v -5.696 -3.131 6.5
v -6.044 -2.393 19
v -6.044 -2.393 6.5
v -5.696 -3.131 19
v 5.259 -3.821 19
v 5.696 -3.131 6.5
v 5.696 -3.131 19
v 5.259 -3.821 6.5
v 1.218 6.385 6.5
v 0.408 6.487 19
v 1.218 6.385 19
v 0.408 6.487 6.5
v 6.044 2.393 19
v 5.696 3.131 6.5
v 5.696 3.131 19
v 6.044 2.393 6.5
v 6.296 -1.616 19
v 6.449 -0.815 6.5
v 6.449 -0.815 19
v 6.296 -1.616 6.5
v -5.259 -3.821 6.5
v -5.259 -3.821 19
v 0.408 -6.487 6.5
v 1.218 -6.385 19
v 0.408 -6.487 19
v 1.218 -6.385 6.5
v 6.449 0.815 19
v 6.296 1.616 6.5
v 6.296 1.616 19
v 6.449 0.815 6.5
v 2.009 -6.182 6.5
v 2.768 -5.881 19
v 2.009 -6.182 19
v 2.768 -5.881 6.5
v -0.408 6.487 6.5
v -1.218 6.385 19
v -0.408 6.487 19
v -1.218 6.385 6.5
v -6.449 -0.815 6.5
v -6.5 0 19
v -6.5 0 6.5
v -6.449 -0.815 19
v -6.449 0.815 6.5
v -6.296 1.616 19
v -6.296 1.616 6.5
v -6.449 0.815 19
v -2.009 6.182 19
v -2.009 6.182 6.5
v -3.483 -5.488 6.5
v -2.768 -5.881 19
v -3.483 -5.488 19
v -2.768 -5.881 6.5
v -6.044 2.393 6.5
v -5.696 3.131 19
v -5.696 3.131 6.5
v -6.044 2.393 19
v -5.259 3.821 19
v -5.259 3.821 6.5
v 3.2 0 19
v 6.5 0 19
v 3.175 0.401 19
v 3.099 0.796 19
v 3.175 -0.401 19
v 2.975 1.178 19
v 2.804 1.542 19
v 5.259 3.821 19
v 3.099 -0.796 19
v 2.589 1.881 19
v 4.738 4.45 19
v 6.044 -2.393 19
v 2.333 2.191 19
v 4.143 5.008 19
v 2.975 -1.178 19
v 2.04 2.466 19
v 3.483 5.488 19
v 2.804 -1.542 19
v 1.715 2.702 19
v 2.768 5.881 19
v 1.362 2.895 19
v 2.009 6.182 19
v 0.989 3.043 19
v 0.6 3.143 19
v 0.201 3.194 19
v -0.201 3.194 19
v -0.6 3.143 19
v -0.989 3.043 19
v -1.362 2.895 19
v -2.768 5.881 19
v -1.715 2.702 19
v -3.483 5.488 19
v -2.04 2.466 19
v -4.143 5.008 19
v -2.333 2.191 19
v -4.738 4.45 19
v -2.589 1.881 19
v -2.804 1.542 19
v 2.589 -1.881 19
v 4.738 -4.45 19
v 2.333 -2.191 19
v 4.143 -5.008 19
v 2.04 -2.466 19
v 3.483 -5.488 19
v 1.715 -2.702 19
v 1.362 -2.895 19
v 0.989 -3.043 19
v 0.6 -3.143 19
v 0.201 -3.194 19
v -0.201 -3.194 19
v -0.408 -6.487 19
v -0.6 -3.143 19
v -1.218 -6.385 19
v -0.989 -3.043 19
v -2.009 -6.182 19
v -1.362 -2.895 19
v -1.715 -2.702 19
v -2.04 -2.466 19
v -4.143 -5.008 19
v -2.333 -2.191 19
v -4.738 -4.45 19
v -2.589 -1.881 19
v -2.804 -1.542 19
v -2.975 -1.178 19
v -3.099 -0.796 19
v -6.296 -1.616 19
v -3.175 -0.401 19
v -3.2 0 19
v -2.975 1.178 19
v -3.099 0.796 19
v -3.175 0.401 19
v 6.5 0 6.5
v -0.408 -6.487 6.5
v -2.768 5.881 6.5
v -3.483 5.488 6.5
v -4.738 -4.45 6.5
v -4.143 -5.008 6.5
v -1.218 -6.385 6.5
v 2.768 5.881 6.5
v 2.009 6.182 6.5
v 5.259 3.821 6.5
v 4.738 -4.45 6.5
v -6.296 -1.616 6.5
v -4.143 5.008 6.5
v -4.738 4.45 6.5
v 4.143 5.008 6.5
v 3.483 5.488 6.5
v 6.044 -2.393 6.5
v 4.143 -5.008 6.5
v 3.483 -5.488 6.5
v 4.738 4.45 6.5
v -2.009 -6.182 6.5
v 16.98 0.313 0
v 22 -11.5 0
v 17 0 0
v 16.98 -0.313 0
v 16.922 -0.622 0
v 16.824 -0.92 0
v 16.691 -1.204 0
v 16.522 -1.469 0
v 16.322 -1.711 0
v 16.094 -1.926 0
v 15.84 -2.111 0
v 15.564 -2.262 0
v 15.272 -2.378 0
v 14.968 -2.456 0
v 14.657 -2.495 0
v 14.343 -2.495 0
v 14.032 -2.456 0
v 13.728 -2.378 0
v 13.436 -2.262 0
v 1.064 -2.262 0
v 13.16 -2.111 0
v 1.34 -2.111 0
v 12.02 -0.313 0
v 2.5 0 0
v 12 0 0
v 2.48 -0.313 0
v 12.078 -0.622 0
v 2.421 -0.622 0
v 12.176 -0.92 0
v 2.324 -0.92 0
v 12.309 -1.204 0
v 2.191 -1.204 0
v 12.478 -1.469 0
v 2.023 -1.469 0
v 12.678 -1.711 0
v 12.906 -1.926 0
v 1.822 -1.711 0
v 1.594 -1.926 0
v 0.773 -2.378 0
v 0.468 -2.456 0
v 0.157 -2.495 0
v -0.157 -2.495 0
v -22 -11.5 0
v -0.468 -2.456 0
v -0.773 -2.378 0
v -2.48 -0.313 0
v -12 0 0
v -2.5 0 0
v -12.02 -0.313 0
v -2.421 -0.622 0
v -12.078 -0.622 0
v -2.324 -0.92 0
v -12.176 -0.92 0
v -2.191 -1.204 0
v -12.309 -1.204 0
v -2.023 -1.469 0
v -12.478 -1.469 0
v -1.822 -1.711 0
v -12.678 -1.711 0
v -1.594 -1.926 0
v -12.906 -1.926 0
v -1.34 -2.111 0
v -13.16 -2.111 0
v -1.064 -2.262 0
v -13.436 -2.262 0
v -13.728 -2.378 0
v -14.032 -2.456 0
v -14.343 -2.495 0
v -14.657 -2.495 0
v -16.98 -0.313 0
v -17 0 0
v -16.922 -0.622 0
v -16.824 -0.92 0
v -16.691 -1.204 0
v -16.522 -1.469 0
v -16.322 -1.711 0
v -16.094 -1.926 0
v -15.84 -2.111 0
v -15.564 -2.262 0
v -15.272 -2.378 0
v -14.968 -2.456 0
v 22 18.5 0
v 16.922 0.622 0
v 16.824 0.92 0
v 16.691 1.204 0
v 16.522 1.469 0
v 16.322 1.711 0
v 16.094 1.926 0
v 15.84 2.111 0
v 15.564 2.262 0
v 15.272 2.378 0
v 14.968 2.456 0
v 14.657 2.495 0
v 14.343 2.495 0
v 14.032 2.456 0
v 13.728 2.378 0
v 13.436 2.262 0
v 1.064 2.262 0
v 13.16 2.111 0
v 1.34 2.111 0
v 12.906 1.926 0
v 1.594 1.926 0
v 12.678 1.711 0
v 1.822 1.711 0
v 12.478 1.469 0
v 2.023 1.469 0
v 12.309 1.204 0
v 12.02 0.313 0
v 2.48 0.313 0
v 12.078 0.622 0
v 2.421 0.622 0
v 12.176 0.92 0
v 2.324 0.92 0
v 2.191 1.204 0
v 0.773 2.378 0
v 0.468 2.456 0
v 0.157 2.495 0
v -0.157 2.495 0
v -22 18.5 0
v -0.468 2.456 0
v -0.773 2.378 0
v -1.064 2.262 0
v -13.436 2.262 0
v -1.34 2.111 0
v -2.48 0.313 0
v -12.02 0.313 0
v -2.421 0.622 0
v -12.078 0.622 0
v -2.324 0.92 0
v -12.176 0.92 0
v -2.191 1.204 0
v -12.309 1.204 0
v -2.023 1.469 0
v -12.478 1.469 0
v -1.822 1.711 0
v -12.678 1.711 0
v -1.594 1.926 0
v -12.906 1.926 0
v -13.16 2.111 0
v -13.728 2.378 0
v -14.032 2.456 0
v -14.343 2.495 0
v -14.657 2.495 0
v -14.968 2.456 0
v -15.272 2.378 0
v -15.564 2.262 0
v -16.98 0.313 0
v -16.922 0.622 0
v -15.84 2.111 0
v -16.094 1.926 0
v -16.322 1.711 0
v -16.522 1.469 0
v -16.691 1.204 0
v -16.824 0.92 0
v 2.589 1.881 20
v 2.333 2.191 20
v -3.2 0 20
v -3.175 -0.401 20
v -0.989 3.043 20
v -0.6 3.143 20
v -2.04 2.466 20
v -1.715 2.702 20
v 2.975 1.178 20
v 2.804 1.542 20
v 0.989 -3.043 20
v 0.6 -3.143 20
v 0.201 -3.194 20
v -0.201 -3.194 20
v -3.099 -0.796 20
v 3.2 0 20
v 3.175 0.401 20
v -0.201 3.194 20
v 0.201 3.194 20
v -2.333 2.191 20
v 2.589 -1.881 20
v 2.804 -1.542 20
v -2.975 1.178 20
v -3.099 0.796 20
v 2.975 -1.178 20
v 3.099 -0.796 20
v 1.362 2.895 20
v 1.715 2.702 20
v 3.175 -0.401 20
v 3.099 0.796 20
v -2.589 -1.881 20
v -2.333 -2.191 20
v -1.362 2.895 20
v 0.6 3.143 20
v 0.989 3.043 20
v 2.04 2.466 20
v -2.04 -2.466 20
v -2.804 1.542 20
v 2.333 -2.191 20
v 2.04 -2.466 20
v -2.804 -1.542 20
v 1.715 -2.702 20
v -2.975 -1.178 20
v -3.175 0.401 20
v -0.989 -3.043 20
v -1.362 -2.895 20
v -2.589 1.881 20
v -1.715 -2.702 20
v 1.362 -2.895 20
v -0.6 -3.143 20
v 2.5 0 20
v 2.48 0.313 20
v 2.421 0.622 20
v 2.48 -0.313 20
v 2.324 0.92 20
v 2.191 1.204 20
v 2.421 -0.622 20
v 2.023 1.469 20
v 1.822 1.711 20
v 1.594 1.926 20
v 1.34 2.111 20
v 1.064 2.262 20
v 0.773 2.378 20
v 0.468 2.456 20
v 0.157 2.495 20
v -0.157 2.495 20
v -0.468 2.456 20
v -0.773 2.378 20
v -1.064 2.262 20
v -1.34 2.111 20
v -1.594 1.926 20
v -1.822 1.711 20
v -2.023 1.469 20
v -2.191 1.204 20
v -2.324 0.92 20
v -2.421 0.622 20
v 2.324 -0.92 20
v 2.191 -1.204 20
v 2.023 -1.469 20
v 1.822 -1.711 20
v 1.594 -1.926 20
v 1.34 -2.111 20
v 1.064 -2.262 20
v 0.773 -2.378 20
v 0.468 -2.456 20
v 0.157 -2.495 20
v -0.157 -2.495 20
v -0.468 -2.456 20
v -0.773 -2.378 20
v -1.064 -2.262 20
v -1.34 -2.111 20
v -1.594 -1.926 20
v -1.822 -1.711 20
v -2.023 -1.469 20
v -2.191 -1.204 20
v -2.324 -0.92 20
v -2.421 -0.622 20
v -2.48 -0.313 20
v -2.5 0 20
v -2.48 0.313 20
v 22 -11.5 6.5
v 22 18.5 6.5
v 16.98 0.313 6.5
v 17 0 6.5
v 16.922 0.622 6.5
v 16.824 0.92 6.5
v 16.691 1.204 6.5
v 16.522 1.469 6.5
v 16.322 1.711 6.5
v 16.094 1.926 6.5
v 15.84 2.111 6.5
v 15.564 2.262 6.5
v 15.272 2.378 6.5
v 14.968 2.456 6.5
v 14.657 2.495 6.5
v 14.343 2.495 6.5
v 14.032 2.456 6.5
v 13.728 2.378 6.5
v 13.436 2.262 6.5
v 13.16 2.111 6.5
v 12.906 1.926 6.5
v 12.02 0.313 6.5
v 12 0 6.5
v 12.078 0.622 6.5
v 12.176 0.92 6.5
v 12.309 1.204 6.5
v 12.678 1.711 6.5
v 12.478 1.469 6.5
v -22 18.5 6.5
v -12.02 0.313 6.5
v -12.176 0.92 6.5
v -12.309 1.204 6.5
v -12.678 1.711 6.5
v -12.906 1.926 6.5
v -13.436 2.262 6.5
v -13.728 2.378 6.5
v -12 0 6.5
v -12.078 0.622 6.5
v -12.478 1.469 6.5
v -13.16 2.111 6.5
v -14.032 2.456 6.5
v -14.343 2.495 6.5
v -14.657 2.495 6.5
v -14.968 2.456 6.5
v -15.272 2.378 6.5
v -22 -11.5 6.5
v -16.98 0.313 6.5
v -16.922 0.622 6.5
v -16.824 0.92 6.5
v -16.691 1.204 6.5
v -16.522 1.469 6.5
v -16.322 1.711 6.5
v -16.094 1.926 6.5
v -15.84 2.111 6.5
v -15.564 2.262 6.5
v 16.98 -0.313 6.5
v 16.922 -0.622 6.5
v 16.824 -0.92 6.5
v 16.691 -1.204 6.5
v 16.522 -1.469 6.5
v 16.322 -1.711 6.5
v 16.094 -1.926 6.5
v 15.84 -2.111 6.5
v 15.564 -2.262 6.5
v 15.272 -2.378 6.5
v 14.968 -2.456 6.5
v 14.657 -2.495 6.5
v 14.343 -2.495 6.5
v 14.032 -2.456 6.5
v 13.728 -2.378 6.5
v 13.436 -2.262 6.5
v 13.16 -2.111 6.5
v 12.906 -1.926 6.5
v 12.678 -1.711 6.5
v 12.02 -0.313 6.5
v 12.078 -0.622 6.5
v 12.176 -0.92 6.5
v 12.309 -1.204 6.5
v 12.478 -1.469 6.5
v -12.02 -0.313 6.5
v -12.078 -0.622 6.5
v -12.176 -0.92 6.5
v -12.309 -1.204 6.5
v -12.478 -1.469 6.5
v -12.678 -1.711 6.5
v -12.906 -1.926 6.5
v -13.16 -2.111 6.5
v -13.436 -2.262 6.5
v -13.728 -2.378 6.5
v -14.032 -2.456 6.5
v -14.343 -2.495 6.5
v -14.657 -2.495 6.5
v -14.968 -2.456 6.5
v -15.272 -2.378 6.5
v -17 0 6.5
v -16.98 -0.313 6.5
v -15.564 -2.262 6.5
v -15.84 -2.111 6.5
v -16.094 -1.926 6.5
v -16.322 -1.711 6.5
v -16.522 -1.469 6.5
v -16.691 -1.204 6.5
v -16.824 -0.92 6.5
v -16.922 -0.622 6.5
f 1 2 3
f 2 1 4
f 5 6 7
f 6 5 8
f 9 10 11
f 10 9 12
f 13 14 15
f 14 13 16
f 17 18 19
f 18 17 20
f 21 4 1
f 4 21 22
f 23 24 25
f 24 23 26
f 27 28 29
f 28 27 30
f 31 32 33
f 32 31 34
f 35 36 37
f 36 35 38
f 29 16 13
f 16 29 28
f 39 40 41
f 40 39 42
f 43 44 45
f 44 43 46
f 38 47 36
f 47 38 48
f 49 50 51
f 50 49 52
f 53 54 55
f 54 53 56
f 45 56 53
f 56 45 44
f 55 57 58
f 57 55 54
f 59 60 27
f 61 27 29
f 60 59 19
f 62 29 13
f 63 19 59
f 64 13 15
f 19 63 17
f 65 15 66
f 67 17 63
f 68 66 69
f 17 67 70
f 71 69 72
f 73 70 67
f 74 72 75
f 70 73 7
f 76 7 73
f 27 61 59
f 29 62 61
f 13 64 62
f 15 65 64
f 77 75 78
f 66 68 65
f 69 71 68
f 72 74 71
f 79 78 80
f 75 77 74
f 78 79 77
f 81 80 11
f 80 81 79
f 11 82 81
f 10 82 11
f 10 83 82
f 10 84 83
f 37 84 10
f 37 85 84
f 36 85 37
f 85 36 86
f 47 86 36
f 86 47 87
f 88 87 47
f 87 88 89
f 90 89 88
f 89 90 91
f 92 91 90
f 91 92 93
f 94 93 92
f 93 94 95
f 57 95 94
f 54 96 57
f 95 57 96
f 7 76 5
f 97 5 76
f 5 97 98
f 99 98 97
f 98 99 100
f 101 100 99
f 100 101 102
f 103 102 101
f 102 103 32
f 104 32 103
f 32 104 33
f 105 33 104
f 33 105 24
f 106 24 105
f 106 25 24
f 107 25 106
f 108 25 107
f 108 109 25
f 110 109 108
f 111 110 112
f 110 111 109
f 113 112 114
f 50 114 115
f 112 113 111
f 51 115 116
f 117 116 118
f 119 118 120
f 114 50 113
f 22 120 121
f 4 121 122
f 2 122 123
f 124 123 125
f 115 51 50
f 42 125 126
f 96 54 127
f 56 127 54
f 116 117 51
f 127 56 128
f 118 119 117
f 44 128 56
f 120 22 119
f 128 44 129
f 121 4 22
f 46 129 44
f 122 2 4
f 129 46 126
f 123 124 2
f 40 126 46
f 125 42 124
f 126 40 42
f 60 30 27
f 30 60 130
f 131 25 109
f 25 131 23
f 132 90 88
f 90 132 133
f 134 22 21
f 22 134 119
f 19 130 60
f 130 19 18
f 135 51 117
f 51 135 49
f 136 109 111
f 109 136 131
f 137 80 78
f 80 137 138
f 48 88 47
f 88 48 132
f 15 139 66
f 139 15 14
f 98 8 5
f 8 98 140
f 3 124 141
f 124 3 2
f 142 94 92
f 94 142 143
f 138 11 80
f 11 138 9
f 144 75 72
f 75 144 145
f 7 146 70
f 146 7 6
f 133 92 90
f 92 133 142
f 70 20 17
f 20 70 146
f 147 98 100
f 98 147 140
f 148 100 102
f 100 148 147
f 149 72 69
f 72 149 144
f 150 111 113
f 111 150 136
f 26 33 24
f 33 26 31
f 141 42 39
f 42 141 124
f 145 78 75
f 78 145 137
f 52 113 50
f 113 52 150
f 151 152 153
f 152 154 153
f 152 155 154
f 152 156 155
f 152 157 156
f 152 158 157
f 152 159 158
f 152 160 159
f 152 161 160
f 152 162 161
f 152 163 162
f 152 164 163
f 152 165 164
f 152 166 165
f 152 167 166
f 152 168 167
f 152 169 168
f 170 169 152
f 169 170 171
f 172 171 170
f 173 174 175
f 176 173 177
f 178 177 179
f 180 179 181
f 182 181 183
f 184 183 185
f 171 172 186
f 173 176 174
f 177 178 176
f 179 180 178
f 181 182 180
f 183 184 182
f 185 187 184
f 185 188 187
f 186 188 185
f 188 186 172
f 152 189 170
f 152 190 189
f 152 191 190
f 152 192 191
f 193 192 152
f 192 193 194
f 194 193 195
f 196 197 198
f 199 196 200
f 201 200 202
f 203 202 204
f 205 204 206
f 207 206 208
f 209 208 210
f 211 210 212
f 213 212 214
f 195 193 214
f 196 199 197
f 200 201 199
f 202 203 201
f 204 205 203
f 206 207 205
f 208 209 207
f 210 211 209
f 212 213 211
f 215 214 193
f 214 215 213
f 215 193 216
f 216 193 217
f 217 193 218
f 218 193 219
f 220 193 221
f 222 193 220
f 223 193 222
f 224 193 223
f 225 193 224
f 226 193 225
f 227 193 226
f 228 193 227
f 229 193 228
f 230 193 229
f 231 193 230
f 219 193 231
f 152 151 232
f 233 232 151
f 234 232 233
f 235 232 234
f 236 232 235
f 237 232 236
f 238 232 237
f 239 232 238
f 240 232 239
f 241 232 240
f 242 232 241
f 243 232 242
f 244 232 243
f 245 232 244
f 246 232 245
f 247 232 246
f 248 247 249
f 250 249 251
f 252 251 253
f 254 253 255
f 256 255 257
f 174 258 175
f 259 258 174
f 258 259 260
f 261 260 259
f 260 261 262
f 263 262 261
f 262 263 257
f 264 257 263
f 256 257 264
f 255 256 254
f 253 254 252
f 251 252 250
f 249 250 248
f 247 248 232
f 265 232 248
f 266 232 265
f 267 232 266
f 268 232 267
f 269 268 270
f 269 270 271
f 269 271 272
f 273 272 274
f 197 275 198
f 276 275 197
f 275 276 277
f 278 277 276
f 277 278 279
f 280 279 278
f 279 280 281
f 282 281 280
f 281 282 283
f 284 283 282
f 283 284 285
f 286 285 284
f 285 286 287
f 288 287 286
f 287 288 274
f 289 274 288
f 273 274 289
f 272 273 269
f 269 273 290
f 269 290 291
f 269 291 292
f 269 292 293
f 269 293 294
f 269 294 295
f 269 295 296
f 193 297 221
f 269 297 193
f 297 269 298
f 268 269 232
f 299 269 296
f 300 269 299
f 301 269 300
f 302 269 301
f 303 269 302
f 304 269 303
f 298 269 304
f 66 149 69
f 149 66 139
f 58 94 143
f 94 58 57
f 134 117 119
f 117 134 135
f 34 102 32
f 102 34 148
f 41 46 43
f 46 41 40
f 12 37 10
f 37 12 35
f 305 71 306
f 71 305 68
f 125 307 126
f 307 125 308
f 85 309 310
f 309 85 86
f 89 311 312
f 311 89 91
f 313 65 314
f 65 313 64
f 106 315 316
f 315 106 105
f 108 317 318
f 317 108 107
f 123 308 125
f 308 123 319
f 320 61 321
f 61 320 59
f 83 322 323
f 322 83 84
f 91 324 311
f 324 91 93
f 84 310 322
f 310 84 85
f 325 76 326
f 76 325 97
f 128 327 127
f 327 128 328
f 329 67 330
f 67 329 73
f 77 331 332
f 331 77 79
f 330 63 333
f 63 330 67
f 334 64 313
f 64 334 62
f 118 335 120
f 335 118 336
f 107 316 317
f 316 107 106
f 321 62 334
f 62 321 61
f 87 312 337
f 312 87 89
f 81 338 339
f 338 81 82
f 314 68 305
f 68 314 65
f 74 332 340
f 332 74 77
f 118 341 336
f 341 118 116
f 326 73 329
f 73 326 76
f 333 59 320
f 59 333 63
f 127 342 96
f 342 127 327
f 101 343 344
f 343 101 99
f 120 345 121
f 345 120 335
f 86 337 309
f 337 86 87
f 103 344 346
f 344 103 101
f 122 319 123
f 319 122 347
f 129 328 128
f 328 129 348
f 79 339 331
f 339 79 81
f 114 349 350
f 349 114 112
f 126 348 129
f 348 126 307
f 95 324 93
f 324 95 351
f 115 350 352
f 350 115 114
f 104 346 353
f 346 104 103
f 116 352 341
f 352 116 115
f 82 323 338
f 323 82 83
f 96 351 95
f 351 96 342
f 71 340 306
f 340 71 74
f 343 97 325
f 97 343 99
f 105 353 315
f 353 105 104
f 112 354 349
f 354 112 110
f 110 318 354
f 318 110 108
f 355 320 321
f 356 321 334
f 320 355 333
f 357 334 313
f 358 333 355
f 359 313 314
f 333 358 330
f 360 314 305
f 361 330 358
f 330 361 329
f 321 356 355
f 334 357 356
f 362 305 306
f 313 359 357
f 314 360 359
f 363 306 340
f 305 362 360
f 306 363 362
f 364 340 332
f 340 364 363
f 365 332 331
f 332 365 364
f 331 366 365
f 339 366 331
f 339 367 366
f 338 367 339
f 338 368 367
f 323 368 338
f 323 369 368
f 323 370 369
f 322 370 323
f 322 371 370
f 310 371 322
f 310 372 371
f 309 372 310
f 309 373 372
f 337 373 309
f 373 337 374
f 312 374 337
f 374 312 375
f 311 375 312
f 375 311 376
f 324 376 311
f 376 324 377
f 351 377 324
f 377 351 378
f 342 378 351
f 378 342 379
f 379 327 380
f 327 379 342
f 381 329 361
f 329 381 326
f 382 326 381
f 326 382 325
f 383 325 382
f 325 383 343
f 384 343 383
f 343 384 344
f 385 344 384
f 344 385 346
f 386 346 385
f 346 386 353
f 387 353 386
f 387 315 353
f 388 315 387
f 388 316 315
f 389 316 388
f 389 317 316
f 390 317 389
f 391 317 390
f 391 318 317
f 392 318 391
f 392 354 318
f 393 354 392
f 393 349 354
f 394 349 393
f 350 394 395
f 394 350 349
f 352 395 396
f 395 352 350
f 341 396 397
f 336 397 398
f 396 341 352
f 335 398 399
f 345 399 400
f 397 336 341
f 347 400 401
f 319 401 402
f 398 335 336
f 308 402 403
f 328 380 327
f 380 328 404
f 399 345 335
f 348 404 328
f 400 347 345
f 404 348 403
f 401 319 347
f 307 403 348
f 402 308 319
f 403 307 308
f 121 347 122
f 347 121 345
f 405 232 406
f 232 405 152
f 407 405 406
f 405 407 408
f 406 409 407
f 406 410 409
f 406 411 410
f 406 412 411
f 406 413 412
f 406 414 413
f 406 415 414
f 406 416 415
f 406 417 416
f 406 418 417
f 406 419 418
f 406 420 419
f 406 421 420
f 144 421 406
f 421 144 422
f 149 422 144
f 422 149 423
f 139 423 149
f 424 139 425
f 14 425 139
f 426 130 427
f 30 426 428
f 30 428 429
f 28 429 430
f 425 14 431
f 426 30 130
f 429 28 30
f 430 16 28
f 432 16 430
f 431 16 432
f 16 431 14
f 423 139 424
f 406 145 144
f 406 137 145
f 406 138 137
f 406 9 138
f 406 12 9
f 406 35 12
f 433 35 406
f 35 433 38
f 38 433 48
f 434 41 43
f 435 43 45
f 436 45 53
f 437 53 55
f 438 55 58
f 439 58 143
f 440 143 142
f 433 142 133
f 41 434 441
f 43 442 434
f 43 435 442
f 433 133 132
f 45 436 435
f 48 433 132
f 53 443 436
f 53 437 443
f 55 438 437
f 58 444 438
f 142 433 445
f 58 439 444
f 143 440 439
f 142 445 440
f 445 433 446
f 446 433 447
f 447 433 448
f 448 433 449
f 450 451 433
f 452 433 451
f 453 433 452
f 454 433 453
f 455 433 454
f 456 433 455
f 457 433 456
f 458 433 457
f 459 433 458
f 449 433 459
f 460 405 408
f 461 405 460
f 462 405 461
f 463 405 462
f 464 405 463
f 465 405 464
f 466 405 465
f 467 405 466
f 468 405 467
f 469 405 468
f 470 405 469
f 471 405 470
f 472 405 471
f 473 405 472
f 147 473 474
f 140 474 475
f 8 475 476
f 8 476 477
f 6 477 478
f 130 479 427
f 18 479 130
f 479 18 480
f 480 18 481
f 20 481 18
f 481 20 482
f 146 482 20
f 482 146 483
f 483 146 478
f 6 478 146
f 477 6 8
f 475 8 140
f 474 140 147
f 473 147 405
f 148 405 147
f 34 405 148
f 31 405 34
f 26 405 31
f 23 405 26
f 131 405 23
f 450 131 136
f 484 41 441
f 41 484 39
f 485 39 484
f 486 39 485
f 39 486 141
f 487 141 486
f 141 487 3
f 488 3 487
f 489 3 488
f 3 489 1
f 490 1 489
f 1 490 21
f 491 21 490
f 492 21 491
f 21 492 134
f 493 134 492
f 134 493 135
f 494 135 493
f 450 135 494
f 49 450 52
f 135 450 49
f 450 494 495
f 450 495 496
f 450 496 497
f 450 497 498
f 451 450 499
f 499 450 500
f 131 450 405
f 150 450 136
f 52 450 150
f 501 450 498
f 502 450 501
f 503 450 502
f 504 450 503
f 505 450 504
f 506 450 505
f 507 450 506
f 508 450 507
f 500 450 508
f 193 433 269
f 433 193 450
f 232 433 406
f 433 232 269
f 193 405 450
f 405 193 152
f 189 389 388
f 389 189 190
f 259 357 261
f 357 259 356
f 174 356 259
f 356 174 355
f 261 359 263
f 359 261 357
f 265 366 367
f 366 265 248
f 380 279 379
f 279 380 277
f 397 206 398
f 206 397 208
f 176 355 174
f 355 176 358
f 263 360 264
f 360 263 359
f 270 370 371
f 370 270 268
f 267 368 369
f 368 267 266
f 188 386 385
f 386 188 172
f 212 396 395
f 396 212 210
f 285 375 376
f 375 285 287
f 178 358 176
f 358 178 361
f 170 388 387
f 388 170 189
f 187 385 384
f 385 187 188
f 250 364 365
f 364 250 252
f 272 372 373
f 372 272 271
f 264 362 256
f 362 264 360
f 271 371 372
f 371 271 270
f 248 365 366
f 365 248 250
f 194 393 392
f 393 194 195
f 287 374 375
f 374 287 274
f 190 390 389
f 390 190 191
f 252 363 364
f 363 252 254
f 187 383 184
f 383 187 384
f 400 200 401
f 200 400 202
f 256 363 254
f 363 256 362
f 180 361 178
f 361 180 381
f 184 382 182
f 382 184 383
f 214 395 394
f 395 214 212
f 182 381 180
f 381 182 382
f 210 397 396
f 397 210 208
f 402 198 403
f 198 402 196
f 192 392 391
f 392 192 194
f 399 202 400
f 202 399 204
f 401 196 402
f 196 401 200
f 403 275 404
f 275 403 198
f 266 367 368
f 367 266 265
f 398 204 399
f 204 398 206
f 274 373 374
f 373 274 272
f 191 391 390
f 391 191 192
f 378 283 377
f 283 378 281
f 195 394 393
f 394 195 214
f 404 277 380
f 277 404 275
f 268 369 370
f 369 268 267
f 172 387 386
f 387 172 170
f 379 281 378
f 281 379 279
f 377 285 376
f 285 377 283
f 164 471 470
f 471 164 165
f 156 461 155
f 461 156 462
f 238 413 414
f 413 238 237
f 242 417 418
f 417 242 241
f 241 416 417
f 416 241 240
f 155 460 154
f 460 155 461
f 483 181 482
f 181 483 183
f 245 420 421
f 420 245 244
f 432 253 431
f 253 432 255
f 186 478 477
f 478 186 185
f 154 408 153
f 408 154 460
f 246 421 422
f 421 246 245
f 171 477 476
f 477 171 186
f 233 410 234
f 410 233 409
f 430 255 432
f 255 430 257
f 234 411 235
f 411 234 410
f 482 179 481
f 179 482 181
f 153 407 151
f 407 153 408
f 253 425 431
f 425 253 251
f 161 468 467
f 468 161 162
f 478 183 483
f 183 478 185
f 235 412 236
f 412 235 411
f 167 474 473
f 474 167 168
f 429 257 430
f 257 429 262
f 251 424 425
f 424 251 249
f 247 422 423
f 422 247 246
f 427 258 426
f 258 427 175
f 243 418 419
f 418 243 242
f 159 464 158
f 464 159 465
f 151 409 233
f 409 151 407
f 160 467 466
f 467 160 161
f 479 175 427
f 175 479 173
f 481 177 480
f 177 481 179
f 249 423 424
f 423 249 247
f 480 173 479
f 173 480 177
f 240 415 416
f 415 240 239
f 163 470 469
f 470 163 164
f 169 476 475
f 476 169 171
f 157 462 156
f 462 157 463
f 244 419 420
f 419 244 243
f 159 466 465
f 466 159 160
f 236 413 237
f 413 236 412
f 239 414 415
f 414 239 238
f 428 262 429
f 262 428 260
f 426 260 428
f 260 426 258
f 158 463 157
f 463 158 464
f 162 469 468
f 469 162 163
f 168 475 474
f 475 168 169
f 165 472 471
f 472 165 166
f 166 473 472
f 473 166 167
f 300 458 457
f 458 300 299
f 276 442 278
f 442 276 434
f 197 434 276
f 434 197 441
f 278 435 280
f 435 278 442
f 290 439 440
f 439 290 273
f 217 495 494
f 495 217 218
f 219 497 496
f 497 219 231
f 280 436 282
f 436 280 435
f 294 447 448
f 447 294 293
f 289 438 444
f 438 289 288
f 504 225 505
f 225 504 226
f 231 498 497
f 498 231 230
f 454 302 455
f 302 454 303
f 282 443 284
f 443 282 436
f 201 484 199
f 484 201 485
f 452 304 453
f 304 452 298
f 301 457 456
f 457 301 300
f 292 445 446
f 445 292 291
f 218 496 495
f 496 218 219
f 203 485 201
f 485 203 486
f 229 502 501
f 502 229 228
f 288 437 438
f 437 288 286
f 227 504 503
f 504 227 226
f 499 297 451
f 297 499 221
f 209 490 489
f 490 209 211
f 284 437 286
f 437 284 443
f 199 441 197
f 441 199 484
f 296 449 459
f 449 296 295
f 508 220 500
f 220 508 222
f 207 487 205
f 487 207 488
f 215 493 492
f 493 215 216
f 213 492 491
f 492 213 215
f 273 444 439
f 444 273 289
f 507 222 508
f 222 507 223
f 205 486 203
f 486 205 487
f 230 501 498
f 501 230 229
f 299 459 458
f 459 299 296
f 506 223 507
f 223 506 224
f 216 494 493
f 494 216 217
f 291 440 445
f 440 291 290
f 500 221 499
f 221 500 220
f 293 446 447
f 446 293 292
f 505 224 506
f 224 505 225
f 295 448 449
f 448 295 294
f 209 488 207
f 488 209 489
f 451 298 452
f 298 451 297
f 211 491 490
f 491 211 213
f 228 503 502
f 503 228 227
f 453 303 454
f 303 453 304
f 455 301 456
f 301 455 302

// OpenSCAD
$fn=50;

bushing_height=20;
bushing_len=13.5;
bushing_outer_rad=13/2;
bushing_hole_rad=5/2;
bushing_bearing_rad=6.4/2;
bushing_step_len=1;
bushing_body_len=bushing_height-bushing_len;

bushing_x_len=44;
bushing_x_offset=8;
bushing_y_len=30;
bushing_y_offset=bushing_y_len/2-bushing_outer_rad-5;

m5_rad=5/2;

difference() {
    union() {
        cylinder(bushing_height-bushing_step_len,r1=bushing_outer_rad,r2=bushing_outer_rad);
        cylinder(bushing_height,r1=bushing_bearing_rad,r2=bushing_bearing_rad);
        translate([0,bushing_y_offset,bushing_body_len/2])
        cube([bushing_x_len,bushing_y_len,bushing_body_len],center=true);
    }
    // shaft hole
    translate([0,0,-.1])
    cylinder(bushing_height+0.2,r1=bushing_hole_rad,r2=bushing_hole_rad); 
    // mount holes
    translate([bushing_x_offset+bushing_outer_rad,0,-.1])
    cylinder(bushing_body_len+0.2,r1=m5_rad,r2=m5_rad); 
    translate([-(bushing_x_offset+bushing_outer_rad),0,-.1])
    cylinder(bushing_body_len+0.2,r1=m5_rad,r2=m5_rad); 
}
